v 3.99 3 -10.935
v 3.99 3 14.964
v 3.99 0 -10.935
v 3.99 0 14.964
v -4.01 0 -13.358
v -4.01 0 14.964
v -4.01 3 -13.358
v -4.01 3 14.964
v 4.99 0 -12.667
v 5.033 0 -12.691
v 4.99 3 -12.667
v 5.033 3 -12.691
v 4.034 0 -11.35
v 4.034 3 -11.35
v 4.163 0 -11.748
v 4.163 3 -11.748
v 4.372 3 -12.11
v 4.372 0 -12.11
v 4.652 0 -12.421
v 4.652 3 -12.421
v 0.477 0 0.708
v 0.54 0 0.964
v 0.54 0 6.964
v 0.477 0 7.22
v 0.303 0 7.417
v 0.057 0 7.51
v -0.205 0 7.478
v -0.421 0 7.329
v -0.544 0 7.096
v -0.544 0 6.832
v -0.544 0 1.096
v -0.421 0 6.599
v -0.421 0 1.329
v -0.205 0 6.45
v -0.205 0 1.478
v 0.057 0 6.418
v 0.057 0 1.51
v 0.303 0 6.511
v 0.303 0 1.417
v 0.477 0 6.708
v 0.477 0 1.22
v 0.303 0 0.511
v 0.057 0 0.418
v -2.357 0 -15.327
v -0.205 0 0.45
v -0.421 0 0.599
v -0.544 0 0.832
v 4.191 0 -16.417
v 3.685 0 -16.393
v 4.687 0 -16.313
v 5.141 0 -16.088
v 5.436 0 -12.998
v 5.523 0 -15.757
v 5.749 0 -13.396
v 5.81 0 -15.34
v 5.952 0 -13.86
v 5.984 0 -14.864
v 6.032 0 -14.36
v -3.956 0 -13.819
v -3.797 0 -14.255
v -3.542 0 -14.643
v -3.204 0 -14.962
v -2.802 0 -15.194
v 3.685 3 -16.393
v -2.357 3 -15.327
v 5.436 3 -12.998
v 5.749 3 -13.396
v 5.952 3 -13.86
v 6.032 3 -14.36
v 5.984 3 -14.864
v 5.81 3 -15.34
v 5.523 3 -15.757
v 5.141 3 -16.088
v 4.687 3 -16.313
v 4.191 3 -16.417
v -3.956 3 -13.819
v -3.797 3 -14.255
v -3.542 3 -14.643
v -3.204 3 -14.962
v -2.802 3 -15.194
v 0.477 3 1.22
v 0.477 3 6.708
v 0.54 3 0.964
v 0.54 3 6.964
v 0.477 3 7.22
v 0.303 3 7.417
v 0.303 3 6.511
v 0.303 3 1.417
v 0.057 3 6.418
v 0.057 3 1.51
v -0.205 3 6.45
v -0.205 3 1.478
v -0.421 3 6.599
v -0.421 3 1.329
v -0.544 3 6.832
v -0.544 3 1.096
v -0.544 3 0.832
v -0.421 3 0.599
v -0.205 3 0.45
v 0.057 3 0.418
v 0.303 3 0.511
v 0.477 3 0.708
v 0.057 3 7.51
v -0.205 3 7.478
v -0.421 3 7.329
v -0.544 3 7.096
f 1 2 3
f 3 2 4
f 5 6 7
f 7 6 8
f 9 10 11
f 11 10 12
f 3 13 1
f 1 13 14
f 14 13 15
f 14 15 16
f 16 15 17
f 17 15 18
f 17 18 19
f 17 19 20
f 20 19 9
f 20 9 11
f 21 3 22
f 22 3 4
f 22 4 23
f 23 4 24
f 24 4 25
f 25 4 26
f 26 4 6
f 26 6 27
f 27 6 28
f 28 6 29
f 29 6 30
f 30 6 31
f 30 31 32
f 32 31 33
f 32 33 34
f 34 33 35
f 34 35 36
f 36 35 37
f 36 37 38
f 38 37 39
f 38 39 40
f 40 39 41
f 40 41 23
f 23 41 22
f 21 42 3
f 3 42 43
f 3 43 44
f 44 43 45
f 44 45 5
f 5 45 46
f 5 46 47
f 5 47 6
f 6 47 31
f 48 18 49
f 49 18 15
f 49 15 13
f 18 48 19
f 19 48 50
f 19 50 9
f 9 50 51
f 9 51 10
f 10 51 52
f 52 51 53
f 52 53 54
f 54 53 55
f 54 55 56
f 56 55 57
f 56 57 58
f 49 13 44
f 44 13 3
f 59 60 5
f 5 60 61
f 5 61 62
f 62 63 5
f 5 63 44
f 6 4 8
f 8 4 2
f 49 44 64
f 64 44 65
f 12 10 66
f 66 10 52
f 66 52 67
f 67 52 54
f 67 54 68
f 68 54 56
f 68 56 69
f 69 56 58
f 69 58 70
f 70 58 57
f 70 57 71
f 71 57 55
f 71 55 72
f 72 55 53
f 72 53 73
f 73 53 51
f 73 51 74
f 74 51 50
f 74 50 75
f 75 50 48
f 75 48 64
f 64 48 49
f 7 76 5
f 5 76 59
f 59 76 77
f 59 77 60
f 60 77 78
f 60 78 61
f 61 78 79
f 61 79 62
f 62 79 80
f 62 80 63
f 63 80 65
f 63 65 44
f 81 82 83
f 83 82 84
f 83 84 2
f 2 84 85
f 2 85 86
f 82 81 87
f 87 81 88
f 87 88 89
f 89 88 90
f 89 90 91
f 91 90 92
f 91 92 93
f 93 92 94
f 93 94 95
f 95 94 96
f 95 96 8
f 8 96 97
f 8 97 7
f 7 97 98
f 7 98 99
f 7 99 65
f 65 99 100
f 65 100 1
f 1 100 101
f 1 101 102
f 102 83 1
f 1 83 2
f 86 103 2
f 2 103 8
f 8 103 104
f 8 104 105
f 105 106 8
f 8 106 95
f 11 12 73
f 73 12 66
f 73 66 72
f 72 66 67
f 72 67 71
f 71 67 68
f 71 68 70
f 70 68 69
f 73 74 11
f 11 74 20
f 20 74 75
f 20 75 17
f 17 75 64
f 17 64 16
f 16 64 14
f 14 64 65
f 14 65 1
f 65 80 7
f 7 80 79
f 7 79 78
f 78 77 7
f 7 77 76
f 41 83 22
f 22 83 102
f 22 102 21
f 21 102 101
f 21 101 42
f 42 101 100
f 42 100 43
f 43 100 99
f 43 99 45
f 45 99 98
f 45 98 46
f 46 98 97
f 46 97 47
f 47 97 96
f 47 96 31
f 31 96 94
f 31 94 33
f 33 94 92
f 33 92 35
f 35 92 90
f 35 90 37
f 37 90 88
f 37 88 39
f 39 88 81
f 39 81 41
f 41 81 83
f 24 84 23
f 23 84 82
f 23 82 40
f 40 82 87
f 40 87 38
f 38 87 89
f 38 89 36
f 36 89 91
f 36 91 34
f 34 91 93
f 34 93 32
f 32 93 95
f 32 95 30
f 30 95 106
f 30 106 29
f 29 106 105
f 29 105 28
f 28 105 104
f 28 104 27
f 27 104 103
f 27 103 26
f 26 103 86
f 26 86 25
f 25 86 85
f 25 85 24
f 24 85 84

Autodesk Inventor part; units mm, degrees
ref_plane "YZ Plane" through (0, 0, 0) normal (1, 0, 0) x (0, 1, 0)
ref_plane "XZ Plane" through (0, 0, 0) normal (0, 1, 0) x (-1, 0, 0)
ref_plane "XY Plane" through (0, 0, 0) normal (0, 0, 1) x (1, 0, 0)
sketch "Sketch1" plane through (0, 0, 0) normal (0, 1, 0) x (-1, 0, 0)
  line L0 (4.0096, 14.964) -> (-3.9904, 14.964)
  line L1 (-3.9904, 14.964) -> (-3.9904, -12.0894)
  line L2 (4.0096, -15.036) -> (4.0096, 14.964)
  line L3 (4.0096, 14.964) -> (-4.018, -14.9952) construction
  line L4 (-3.9904, 14.964) -> (4.0096, -15.036) construction
  line L5 (4.0096, -15.036) -> (-6.0407, -16.8081)
  line L6 (-3.9904, -12.0894) -> (-6.4901, -13.5325)
  line L7 (-6.4901, -13.5325) -> (-6.0407, -16.8081)
  point P0 (0, 0)
  dimension "d5" = 30
  dimension "d6" = 8
  dimension "d7" = 7.812
  dimension "d8" = 120
  dimension "d9" = 100
  dimension "d10" = 3.2756
  dimension "d11" = 27.0534
  dimension "d12" = 45
extrude "Extrusion1" add sketch "Sketch1" along normal blind 3
fillet "Fillet1" radius 2 4 edges at (-4.0096, 1.5, -15.036) (6.0407, 1.5, -16.8081) (6.4901, 1.5, -13.5325) (3.9904, 1.5, -12.0894)
sketch "Sketch2" plane through (0, 3, 0) normal (0, 1, 0) x (1, 0, 0)
  circle A0 centre (-0.0096, -6.964) radius 0.55
  line L0 (-4.0096, -14.964) -> (3.9904, -14.964) projected
  line L1 (-4.0096, 13.3578) -> (-4.0096, -14.964) projected
  circle A1 centre (-0.0096, -0.964) radius 0.55
  point P0 (0, 0)
  dimension "d16" = 8
  dimension "d17" = 1.1
  dimension "d18" = 4
  dimension "d19" = 14
  dimension "d20" = 4
  dimension "d21" = 1.1
extrude "Extrusion2" cut sketch "Sketch2" against normal blind 3
properties part number "remoteswitchtouch"
